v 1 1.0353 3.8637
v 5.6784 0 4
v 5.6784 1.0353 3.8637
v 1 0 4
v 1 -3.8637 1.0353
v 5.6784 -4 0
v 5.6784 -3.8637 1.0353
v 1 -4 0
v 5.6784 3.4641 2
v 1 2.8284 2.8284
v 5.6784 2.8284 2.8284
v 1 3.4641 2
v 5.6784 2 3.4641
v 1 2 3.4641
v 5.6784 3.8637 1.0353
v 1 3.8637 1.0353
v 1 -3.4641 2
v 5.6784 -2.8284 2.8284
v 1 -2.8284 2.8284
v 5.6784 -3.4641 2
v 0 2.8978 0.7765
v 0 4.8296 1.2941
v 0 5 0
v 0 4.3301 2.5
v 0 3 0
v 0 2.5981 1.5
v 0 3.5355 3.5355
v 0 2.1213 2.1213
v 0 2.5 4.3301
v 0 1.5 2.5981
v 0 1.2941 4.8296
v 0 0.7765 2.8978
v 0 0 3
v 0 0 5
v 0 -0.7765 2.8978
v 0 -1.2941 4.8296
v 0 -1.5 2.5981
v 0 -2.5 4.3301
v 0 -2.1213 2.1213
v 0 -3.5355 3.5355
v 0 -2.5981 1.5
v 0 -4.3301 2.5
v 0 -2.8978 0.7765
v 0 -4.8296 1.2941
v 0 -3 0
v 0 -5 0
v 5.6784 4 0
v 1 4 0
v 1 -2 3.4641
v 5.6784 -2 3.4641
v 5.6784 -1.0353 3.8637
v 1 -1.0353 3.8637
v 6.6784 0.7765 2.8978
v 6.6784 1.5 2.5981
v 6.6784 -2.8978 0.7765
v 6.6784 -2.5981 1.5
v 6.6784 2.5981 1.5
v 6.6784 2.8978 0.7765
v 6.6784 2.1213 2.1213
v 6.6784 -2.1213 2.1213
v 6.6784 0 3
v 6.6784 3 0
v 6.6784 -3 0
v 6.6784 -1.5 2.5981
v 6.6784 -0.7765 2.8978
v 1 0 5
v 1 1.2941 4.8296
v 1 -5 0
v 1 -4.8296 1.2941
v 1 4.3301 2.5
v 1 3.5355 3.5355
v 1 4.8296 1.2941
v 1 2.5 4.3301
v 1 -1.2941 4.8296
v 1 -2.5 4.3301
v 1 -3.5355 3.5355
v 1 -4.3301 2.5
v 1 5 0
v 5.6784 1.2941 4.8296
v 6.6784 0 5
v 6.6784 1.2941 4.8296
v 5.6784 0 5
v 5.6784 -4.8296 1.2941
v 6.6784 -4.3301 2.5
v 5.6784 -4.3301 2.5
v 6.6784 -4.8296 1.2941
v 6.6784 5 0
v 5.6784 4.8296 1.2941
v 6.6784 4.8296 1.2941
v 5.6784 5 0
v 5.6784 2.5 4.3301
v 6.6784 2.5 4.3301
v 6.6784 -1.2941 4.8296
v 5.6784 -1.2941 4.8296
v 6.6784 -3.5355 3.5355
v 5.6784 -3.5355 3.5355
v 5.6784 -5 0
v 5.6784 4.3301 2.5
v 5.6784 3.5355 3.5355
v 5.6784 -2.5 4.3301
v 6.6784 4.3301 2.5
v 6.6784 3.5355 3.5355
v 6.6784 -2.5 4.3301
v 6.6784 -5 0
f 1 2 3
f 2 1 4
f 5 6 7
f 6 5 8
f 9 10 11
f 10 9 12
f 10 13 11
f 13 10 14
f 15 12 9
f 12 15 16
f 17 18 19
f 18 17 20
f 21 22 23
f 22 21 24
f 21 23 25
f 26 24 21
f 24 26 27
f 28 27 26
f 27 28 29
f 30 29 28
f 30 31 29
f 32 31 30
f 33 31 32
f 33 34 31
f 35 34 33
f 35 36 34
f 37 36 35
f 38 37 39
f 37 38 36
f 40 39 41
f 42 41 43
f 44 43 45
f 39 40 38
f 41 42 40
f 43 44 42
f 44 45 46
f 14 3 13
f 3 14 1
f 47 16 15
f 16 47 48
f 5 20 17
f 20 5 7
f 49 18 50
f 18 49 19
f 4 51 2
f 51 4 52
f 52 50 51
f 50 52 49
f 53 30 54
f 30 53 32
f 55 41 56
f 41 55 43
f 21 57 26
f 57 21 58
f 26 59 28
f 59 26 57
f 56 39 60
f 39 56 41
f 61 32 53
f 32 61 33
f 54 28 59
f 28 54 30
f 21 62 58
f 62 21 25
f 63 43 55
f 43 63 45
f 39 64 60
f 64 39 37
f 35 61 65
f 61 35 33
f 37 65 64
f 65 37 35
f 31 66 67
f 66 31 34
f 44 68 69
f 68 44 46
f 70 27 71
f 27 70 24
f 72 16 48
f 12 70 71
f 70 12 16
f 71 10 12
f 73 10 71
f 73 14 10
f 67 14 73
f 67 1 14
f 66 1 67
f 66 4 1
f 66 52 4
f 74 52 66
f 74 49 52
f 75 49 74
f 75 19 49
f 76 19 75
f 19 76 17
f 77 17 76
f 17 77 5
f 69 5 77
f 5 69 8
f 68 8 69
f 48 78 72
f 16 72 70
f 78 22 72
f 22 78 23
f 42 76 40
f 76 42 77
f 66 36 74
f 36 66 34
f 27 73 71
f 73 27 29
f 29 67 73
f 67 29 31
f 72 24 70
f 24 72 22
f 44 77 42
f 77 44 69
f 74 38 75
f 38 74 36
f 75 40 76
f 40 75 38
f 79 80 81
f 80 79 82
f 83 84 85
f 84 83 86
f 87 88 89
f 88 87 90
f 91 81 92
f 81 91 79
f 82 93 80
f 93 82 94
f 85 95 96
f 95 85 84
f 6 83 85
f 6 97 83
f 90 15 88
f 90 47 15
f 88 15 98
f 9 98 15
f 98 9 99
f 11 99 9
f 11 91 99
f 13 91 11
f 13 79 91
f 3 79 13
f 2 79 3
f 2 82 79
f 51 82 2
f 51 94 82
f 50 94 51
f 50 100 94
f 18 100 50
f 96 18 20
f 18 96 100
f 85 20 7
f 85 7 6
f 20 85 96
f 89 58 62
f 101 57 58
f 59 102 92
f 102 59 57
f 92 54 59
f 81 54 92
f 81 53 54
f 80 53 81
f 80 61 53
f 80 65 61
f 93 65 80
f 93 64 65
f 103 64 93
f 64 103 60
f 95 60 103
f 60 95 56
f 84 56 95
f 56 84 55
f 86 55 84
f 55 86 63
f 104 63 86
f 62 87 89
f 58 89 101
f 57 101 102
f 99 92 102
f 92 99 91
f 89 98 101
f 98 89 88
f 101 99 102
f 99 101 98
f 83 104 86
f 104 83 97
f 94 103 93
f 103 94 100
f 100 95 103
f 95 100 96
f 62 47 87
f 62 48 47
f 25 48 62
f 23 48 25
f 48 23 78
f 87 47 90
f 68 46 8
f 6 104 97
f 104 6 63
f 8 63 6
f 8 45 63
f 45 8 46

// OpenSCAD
// file: ../build_environments.scad
// build_environments.scad: modules to build level sections
//

module pool(diameter=10.0, wall_height=2.0, step_width=3.0, connections=[])
{
    difference() {
        union() {
        difference() {
            cylinder(h=0.5,r1=diameter+step_width,r2=diameter+step_width,$fn=48);
            translate([0,0,-0.1])
                cylinder(h=0.7,r1=diameter,r2=diameter,$fn=48);
        }
        difference() {
            cylinder(h=wall_height,r1=diameter+step_width+1.0,r2=diameter+step_width+1.0,$fn=48);
            translate([0,0,-0.1])
                cylinder(h=wall_height+0.2,r1=diameter+step_width,r2=diameter+step_width,$fn=48);
        }
        }
    
        for (c = connections)
        {
            rotate([0,90,0]) {
                angle = atan2(c[1],c[0]);
                rotate([-angle,0,0]) {
                    cylinder(h=diameter+5.0,r1=c[2],r2=c[2],$fn=48);
                }
            }
        }
    }
}

module straight(length=10.0, width=2.0, dy1=0.0, dy2=0.0, dz=0.0)
{
    dims = [0, 0, 0, 0, 0, (dz/length)];
    matrix = [
        [ 1, dims[0], dims[1], 0 ],
        [ dims[2], 1, dims[4], 0 ],
        [ dims[5], dims[3], 1, 0 ],
        [ 0, 0, 0, 1 ]
    ];
    multmatrix(matrix)
    difference() {
        translate([dy1,0,0])
        union() {
            rotate([0,90,0]) {
                difference() {
                    cylinder(h=(length-dy1-dy2),r1=width+1.0,r2=width+1.0,$fn=24);
                    translate([0,0,-0.1])
                        cylinder(h=(length-dy1-dy2+0.2),r1=width,r2=width,$fn=24);
                }
                difference() {
                    cylinder(h=1.0,r1=width+2.0,r2=width+2.0,$fn=24);
                    translate([0,0,-0.1])
                        cylinder(h=1.2,r1=width,r2=width,$fn=24);
                }
                translate([0,0,(length-dy1-dy2)-1.0]) {
                    difference() {
                        cylinder(h=1.0,r1=width+2.0,r2=width+2.0,$fn=24);
                        translate([0,0,-0.1])
                            cylinder(h=1.2,r1=width,r2=width,$fn=24);
                    }
                }
            }
        }
        translate([0,0,-(2*width+4.0)/2])
            cube([3*length,3*length,2*width+4.0],center=true);
    }
}

module curve(p0=[0,0], center=[0,0], dir=1, angle=0.0, width=2.0)
{
    radius = sqrt((p0[0]-center[0])*(p0[0]-center[0]) + (p0[1]-center[1])*(p0[1]-center[1]));
    if (dir == 0) {
        difference() {
            rotate([0,0,-90])
            difference() {
                rotate_extrude(angle = angle, convexity = 10, $fn=32)
                    translate([radius, 0, 0])
                        circle(r = width+1.0,$fn=24);
                rotate([0,0,-1.0])
                    rotate_extrude(angle = angle+2.0, convexity = 10, $fn=32)
                        translate([radius, 0, 0])
                            circle(r = width,$fn=24);
            }
            translate([0,0,-(2*width+4.0)/2])
                cube([5*radius,5*radius,2*width+4.0],center=true);
        }
    }
    else {
        difference() {
            rotate([0,0,90])
            difference() {
                rotate_extrude(angle = -angle, convexity = 10, $fn=32)
                    translate([radius, 0, 0])
                        circle(r = width+1.0,$fn=24);
                rotate([0,0,1.0])
                    rotate_extrude(angle = -angle-2.0, convexity = 10, $fn=32)
                        translate([radius, 0, 0])
                            circle(r = width,$fn=24);
            }
            translate([0,0,-(2*width+4.0)/2])
                cube([5*radius,5*radius,2*width+4.0],center=true);
        }
    }

}

// test pool
//pool(diameter=12.0000, wall_height=3.0000, step_width=3.0000, connections=[[0.0000,-26.0000,2.0000], [23.6074,0.0000,2.0000]]);

// test straight, slope
//straight(length=26.0000, width=2.0000, dy1=11.8322, dy2=6.7082, dz=0.0000);
//straight(length=29.1549, width=12.0000, dy1=0.0000, dy2=0.0000, dz=-15.0000);

// test curve
//curve(p0=[23.6074, 0.0000], center=[23.6074, 5.0000], dir=0, angle=60.1011, width=2.0000);
//curve(p0=[33.6426, 12.4219], center=[37.9771, 9.9295], dir=1, angle=120.4627, width=2.0000);
// main file
use <../build_environments.scad>;
straight(length=6.6784, width=3.0000, dy1=0.0000, dy2=0.0000, dz=0.0000);
